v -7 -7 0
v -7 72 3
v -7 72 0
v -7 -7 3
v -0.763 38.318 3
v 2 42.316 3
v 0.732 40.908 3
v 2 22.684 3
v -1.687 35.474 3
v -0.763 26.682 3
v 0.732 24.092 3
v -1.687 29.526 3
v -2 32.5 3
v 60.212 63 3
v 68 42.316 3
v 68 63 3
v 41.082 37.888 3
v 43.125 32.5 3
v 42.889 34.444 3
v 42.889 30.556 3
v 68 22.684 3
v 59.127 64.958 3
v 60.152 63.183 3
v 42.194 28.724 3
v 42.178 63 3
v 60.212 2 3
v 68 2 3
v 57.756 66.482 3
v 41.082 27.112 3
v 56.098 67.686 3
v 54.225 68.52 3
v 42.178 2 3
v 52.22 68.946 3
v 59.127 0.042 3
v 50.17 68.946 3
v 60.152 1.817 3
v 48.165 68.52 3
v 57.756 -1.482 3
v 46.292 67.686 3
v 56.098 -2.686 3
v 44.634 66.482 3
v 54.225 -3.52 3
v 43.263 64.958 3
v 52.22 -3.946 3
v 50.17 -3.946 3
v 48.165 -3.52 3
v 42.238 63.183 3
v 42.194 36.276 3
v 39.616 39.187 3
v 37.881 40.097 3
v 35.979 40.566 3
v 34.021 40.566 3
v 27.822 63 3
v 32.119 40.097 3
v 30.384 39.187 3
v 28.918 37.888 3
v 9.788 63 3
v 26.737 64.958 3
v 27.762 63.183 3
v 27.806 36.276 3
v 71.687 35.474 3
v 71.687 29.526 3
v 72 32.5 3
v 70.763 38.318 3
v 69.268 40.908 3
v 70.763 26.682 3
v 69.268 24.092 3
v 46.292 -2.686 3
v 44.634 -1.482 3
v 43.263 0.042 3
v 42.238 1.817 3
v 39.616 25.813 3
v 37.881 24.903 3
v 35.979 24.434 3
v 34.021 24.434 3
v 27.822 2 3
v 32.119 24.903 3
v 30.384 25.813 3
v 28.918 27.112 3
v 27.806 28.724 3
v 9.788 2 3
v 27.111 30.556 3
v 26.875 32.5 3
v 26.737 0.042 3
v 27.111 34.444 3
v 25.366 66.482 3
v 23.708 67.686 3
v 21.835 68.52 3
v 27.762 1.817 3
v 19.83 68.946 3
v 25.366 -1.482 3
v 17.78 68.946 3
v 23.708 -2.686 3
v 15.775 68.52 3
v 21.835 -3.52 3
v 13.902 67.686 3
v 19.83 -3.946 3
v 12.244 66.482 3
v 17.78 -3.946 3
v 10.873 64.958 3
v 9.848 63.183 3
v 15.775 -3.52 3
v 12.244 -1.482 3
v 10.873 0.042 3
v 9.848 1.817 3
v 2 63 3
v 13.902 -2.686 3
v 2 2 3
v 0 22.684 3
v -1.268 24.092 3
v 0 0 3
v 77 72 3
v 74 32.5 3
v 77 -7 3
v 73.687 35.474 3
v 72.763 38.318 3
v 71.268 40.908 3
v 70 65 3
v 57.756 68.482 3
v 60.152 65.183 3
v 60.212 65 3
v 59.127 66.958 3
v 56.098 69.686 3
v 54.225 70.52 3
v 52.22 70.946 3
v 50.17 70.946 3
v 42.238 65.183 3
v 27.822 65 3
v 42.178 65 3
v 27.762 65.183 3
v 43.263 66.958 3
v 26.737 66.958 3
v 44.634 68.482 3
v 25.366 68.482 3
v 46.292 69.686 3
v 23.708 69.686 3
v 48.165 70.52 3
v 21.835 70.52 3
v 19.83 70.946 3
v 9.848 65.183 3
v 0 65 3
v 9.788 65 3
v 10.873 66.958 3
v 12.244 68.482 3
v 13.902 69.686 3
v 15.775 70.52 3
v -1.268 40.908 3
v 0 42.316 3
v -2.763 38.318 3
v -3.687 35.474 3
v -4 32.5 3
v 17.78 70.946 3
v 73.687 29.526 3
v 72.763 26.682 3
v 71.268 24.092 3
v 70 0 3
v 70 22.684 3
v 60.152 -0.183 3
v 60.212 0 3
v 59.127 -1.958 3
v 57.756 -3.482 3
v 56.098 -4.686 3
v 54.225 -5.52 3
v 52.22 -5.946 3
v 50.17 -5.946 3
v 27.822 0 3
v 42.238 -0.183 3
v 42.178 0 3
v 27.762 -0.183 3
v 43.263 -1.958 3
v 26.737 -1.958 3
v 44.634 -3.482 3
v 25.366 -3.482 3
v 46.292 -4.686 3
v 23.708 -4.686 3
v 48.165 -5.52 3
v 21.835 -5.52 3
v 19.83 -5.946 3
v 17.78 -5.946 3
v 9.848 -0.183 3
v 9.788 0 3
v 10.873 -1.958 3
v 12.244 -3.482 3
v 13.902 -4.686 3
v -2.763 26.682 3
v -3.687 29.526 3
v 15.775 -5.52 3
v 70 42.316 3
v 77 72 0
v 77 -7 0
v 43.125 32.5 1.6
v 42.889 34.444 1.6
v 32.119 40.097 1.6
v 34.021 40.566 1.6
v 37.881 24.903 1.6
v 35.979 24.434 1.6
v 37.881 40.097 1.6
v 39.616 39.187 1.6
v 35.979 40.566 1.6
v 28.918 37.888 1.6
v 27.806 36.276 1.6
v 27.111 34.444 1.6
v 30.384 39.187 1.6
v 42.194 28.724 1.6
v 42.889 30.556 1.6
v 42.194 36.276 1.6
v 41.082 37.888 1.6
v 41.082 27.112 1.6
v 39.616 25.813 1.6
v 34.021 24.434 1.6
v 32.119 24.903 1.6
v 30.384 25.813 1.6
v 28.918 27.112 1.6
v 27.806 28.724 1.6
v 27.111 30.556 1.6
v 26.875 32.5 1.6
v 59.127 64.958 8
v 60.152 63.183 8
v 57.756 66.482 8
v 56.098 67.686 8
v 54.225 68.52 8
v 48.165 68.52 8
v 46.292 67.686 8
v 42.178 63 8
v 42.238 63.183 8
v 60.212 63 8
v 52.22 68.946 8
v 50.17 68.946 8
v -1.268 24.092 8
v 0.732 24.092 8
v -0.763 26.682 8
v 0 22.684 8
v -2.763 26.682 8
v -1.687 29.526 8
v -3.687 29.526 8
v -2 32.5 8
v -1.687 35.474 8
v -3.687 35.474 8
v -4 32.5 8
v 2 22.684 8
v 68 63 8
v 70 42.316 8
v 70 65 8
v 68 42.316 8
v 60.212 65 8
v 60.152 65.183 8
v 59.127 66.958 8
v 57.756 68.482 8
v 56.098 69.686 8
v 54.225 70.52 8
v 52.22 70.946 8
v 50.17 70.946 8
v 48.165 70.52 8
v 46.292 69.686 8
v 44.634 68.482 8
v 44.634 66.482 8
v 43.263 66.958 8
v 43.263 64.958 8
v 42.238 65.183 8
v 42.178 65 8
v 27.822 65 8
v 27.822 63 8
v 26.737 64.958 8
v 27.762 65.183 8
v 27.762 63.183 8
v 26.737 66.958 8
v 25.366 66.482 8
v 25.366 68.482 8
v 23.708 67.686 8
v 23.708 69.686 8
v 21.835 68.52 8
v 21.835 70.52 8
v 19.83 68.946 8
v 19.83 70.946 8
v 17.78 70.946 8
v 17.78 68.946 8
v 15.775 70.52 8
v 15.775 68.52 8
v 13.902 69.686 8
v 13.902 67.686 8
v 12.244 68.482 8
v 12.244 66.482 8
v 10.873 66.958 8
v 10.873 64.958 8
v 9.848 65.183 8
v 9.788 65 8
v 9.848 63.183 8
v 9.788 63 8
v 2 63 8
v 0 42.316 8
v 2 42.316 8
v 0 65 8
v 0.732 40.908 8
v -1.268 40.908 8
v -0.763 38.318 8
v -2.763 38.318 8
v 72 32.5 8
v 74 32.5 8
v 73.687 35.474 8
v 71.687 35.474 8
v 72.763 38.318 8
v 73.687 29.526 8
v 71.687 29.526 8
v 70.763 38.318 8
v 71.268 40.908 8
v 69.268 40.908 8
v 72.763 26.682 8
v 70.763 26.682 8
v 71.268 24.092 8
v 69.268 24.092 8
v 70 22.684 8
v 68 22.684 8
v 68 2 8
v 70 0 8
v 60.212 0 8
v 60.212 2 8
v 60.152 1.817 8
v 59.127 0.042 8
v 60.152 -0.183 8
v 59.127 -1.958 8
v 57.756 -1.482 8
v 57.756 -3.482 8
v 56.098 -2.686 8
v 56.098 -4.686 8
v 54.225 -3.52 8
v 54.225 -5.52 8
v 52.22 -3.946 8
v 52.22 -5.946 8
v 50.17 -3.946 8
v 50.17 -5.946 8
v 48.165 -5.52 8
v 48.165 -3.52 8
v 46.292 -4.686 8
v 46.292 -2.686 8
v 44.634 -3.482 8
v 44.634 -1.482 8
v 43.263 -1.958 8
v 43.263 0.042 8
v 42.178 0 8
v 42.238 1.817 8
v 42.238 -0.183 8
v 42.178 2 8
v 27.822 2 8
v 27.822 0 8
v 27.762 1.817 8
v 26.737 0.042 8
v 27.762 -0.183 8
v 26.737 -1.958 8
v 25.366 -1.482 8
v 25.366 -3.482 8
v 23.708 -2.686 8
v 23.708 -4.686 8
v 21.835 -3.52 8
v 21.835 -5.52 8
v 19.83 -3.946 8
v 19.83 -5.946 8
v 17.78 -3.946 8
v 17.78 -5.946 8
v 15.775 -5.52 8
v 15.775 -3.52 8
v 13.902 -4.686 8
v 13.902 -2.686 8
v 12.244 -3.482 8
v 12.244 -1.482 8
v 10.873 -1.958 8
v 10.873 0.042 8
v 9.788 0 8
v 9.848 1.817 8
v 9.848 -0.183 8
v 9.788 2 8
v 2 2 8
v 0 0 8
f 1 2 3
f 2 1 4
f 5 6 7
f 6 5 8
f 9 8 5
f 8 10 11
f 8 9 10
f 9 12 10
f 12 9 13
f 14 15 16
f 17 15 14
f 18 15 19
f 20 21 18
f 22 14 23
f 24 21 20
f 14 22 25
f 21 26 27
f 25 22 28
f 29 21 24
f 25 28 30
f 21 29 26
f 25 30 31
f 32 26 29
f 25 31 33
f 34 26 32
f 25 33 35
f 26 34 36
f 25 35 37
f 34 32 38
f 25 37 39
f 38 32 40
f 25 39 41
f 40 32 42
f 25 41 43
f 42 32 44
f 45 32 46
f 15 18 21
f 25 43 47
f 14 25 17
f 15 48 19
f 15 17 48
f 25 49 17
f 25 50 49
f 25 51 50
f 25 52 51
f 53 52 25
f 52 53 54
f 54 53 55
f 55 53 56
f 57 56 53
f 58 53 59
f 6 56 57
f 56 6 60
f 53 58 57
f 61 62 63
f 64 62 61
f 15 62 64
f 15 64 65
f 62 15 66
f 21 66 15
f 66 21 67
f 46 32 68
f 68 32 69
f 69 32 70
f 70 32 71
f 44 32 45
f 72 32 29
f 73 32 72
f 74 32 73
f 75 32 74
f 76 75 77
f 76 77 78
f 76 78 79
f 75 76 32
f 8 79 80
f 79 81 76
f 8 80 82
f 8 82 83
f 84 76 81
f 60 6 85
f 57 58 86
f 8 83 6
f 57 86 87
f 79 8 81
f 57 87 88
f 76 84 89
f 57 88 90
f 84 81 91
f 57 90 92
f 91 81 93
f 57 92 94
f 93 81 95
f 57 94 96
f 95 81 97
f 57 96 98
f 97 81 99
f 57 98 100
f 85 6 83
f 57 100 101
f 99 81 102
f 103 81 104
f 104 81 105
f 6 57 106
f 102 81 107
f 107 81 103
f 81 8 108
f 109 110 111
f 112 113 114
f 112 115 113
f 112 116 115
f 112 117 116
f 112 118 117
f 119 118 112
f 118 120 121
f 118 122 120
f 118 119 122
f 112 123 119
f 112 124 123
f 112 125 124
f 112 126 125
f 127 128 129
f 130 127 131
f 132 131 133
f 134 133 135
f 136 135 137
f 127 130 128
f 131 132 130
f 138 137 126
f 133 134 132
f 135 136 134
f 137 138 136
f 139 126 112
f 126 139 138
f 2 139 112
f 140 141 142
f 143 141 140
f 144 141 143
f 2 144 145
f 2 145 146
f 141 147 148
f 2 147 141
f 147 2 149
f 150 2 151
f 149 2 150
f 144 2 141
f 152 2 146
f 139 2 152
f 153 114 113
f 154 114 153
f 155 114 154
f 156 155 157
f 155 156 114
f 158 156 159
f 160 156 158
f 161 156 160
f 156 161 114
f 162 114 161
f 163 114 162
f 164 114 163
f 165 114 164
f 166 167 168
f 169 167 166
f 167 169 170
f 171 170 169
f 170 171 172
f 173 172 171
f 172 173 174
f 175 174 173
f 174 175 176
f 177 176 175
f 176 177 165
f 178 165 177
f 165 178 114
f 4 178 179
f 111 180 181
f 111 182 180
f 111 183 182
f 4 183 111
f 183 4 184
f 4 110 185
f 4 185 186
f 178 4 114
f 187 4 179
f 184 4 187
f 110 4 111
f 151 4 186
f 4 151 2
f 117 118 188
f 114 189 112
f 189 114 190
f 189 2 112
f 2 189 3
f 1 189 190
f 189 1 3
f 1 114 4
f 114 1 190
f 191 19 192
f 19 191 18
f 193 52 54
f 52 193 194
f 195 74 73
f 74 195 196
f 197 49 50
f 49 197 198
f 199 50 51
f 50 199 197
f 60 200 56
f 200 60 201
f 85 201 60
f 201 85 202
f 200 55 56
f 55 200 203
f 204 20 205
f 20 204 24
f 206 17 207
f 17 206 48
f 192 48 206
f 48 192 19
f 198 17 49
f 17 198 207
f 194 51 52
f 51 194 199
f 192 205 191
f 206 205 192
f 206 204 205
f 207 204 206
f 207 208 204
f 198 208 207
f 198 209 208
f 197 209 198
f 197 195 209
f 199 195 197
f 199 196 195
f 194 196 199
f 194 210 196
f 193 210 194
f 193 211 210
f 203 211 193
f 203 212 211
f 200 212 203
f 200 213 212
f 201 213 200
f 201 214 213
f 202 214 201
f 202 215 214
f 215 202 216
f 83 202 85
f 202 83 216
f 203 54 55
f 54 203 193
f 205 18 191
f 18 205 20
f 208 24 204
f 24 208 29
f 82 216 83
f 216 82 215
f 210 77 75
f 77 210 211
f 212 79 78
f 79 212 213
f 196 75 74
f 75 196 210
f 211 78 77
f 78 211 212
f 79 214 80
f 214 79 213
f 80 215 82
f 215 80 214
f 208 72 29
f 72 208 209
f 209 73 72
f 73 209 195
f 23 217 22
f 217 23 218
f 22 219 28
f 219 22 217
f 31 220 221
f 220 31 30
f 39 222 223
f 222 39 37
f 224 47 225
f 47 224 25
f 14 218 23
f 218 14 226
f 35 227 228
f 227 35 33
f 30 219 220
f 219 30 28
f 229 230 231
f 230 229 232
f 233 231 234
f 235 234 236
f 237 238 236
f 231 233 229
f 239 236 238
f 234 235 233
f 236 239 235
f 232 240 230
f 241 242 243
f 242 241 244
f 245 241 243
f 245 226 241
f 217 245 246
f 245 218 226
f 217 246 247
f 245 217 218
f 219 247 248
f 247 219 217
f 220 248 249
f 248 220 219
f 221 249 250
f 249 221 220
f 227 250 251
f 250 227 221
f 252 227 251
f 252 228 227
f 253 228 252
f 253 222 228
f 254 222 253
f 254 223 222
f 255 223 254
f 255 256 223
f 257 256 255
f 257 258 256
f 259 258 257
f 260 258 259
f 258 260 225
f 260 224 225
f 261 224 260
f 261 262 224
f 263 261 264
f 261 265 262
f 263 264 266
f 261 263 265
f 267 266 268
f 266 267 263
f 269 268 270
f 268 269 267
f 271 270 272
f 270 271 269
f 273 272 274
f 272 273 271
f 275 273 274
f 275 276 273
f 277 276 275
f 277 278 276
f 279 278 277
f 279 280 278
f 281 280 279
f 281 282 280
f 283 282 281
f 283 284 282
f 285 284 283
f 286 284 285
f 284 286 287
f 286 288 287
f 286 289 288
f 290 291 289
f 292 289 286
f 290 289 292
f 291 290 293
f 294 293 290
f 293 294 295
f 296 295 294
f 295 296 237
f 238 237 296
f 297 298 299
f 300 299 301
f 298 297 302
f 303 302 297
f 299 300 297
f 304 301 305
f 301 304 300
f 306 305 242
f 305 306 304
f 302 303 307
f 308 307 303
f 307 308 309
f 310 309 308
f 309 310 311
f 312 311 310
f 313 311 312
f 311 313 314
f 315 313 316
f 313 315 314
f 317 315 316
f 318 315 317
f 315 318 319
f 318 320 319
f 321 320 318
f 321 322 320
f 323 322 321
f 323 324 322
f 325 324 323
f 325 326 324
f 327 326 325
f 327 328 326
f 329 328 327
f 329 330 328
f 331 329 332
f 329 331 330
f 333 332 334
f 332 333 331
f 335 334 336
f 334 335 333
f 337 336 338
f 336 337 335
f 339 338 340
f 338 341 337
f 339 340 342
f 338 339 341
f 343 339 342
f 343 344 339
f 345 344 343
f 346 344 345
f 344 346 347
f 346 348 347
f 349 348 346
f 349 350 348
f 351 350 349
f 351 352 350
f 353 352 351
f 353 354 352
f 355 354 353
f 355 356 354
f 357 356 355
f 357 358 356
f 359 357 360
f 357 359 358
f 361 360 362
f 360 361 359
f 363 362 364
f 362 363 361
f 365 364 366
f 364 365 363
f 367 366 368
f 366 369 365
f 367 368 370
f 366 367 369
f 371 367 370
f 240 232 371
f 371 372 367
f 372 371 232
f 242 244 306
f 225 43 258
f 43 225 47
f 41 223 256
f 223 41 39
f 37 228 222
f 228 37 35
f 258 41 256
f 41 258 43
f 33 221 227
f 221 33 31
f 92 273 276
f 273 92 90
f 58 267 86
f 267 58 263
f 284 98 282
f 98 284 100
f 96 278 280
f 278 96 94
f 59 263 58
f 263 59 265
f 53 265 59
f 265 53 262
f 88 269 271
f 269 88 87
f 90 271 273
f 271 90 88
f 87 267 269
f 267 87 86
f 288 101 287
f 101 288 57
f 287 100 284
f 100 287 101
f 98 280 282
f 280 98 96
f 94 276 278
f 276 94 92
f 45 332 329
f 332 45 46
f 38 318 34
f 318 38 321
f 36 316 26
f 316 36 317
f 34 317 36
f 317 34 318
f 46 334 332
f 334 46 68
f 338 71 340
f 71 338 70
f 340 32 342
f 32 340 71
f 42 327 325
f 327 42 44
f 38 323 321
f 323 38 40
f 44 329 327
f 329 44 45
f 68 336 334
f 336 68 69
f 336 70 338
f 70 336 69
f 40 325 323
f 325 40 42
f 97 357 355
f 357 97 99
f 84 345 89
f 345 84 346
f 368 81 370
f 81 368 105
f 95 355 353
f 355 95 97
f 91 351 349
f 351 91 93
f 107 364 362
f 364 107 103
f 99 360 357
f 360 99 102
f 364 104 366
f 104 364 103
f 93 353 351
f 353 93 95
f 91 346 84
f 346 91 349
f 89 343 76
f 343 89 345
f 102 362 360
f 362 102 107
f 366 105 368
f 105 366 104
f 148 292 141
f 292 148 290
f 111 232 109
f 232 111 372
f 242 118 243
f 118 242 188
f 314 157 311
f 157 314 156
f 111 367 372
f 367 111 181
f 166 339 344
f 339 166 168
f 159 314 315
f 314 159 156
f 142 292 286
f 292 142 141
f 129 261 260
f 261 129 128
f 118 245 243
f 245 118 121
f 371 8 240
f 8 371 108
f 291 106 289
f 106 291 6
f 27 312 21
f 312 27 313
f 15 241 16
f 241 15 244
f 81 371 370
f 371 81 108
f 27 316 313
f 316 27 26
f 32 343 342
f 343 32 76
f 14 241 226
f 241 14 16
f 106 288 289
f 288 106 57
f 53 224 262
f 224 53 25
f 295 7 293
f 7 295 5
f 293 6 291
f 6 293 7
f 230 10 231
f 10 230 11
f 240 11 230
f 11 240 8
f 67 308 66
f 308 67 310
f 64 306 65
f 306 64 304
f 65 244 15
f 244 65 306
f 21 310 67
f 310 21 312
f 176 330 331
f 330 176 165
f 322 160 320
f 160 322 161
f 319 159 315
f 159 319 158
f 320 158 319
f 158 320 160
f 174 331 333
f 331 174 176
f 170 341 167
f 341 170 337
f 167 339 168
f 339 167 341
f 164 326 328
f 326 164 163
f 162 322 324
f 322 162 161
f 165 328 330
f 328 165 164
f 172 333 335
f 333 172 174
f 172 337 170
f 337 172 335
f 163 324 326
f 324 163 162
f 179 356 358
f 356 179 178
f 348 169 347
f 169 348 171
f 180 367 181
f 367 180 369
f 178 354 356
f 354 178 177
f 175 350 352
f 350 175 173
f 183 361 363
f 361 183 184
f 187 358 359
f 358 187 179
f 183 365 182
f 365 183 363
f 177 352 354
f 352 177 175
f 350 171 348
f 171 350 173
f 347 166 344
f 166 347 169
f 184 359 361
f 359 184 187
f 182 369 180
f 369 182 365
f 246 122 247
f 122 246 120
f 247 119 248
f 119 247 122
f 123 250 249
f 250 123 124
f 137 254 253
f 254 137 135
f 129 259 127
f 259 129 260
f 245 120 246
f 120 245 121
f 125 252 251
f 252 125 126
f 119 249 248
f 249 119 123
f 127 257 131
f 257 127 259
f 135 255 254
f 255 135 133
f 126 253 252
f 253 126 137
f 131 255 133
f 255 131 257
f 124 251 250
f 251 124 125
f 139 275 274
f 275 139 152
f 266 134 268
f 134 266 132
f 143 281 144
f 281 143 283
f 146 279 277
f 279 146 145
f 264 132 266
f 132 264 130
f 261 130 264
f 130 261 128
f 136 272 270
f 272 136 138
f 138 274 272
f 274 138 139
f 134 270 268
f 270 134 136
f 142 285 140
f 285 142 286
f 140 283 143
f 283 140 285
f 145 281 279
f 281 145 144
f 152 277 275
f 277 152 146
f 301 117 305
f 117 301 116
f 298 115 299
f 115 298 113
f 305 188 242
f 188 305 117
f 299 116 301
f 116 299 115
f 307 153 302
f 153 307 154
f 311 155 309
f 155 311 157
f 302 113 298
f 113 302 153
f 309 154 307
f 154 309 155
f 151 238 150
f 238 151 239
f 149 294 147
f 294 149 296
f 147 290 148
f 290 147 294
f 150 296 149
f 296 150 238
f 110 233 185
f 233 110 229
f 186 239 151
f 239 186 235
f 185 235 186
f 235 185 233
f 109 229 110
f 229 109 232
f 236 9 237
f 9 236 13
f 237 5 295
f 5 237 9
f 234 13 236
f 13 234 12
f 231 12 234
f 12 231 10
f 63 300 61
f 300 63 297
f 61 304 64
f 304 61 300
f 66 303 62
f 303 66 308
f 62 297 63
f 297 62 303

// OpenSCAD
length = 65;
width = 60;
height = 3;
rimHeight = 5;
rimThickness = 2;
notchLength = 25;
//Based on washer size:
washerDiameter = 16.25;
washerHeight = 1.4;
rimPadding = 1;
totalHeight = height + rimHeight;

totalLength = length + rimThickness * 2 + rimPadding;
totalWidth = width + rimThickness * 2 + rimPadding;
extraLidForCircles = 7;

smallCircleDiameter = 19.11 + .5;
smallCircleOffset = 4;

mediumCircleDiameter = 23.11 + .5;
mediumCircleOffset = 4;

largeCircleDiameter = 28.11 + .5;
largeCircleOffset = 5;

spaceBetweenCircles = 3;

union()
{
    difference() {
        translate([-extraLidForCircles, -extraLidForCircles, 0])
            cube([totalLength + 2 * extraLidForCircles, totalWidth + 2 * extraLidForCircles, height]);
        translate([totalLength/2, totalWidth/2, height - washerHeight])
            cylinder(washerHeight, d=washerDiameter);
    }
    
    difference() {
        translate([0, 0, height])
            cube([totalLength, totalWidth, rimHeight]);
        translate([rimThickness, rimThickness, height])
            cube([length + rimPadding, width + rimPadding, rimHeight]);
        RightLengthCircles();
        LeftLengthCircles();
        BottomWidthCircles();
        TopWidthCircles();
    }
    
    difference(){
        union()
        {
            translate([0, -rimThickness, 0])
                LeftLengthCircles();
            translate([0, rimThickness, 0])
                RightLengthCircles();
            translate([rimThickness, 0, 0])
                TopWidthCircles();
            translate([-rimThickness, 0, 0])
                BottomWidthCircles();
        }
        translate([0, 0, height])
            cube([totalLength, totalWidth, rimHeight]);
        RightLengthCircles();
        LeftLengthCircles();
        BottomWidthCircles();
        TopWidthCircles();
    }
}


module LeftLengthCircles()
{
    translate([
        totalLength - (rimThickness + rimPadding + spaceBetweenCircles * 2 + smallCircleDiameter/2),
        smallCircleDiameter/2 - smallCircleOffset,
        height])
        cylinder(rimHeight, d=smallCircleDiameter);
   translate([
        rimThickness + rimPadding + (spaceBetweenCircles * 2 + smallCircleDiameter/2),
        smallCircleDiameter/2 - smallCircleOffset,
        height])
        cylinder(rimHeight, d=smallCircleDiameter);
}

module RightLengthCircles()
{
    translate([
        totalLength - (rimThickness + rimPadding + spaceBetweenCircles * 2 + smallCircleDiameter/2),
        totalWidth - (smallCircleDiameter/2 - smallCircleOffset),
        height])
        cylinder(rimHeight, d=smallCircleDiameter);
    translate([
        rimThickness + rimPadding + (spaceBetweenCircles * 2 + smallCircleDiameter/2),
        totalWidth - (smallCircleDiameter/2 - smallCircleOffset),
        height])
        cylinder(rimHeight, d=smallCircleDiameter);
}

module BottomWidthCircles()
{
    translate([largeCircleDiameter/2 + spaceBetweenCircles - largeCircleOffset, totalWidth/2, height])
        cylinder(rimHeight, d=largeCircleDiameter);
}

module TopWidthCircles()
{
    translate([totalLength - (largeCircleDiameter/2 + spaceBetweenCircles - largeCircleOffset), totalWidth/2, height])
        cylinder(rimHeight, d=largeCircleDiameter);
}
